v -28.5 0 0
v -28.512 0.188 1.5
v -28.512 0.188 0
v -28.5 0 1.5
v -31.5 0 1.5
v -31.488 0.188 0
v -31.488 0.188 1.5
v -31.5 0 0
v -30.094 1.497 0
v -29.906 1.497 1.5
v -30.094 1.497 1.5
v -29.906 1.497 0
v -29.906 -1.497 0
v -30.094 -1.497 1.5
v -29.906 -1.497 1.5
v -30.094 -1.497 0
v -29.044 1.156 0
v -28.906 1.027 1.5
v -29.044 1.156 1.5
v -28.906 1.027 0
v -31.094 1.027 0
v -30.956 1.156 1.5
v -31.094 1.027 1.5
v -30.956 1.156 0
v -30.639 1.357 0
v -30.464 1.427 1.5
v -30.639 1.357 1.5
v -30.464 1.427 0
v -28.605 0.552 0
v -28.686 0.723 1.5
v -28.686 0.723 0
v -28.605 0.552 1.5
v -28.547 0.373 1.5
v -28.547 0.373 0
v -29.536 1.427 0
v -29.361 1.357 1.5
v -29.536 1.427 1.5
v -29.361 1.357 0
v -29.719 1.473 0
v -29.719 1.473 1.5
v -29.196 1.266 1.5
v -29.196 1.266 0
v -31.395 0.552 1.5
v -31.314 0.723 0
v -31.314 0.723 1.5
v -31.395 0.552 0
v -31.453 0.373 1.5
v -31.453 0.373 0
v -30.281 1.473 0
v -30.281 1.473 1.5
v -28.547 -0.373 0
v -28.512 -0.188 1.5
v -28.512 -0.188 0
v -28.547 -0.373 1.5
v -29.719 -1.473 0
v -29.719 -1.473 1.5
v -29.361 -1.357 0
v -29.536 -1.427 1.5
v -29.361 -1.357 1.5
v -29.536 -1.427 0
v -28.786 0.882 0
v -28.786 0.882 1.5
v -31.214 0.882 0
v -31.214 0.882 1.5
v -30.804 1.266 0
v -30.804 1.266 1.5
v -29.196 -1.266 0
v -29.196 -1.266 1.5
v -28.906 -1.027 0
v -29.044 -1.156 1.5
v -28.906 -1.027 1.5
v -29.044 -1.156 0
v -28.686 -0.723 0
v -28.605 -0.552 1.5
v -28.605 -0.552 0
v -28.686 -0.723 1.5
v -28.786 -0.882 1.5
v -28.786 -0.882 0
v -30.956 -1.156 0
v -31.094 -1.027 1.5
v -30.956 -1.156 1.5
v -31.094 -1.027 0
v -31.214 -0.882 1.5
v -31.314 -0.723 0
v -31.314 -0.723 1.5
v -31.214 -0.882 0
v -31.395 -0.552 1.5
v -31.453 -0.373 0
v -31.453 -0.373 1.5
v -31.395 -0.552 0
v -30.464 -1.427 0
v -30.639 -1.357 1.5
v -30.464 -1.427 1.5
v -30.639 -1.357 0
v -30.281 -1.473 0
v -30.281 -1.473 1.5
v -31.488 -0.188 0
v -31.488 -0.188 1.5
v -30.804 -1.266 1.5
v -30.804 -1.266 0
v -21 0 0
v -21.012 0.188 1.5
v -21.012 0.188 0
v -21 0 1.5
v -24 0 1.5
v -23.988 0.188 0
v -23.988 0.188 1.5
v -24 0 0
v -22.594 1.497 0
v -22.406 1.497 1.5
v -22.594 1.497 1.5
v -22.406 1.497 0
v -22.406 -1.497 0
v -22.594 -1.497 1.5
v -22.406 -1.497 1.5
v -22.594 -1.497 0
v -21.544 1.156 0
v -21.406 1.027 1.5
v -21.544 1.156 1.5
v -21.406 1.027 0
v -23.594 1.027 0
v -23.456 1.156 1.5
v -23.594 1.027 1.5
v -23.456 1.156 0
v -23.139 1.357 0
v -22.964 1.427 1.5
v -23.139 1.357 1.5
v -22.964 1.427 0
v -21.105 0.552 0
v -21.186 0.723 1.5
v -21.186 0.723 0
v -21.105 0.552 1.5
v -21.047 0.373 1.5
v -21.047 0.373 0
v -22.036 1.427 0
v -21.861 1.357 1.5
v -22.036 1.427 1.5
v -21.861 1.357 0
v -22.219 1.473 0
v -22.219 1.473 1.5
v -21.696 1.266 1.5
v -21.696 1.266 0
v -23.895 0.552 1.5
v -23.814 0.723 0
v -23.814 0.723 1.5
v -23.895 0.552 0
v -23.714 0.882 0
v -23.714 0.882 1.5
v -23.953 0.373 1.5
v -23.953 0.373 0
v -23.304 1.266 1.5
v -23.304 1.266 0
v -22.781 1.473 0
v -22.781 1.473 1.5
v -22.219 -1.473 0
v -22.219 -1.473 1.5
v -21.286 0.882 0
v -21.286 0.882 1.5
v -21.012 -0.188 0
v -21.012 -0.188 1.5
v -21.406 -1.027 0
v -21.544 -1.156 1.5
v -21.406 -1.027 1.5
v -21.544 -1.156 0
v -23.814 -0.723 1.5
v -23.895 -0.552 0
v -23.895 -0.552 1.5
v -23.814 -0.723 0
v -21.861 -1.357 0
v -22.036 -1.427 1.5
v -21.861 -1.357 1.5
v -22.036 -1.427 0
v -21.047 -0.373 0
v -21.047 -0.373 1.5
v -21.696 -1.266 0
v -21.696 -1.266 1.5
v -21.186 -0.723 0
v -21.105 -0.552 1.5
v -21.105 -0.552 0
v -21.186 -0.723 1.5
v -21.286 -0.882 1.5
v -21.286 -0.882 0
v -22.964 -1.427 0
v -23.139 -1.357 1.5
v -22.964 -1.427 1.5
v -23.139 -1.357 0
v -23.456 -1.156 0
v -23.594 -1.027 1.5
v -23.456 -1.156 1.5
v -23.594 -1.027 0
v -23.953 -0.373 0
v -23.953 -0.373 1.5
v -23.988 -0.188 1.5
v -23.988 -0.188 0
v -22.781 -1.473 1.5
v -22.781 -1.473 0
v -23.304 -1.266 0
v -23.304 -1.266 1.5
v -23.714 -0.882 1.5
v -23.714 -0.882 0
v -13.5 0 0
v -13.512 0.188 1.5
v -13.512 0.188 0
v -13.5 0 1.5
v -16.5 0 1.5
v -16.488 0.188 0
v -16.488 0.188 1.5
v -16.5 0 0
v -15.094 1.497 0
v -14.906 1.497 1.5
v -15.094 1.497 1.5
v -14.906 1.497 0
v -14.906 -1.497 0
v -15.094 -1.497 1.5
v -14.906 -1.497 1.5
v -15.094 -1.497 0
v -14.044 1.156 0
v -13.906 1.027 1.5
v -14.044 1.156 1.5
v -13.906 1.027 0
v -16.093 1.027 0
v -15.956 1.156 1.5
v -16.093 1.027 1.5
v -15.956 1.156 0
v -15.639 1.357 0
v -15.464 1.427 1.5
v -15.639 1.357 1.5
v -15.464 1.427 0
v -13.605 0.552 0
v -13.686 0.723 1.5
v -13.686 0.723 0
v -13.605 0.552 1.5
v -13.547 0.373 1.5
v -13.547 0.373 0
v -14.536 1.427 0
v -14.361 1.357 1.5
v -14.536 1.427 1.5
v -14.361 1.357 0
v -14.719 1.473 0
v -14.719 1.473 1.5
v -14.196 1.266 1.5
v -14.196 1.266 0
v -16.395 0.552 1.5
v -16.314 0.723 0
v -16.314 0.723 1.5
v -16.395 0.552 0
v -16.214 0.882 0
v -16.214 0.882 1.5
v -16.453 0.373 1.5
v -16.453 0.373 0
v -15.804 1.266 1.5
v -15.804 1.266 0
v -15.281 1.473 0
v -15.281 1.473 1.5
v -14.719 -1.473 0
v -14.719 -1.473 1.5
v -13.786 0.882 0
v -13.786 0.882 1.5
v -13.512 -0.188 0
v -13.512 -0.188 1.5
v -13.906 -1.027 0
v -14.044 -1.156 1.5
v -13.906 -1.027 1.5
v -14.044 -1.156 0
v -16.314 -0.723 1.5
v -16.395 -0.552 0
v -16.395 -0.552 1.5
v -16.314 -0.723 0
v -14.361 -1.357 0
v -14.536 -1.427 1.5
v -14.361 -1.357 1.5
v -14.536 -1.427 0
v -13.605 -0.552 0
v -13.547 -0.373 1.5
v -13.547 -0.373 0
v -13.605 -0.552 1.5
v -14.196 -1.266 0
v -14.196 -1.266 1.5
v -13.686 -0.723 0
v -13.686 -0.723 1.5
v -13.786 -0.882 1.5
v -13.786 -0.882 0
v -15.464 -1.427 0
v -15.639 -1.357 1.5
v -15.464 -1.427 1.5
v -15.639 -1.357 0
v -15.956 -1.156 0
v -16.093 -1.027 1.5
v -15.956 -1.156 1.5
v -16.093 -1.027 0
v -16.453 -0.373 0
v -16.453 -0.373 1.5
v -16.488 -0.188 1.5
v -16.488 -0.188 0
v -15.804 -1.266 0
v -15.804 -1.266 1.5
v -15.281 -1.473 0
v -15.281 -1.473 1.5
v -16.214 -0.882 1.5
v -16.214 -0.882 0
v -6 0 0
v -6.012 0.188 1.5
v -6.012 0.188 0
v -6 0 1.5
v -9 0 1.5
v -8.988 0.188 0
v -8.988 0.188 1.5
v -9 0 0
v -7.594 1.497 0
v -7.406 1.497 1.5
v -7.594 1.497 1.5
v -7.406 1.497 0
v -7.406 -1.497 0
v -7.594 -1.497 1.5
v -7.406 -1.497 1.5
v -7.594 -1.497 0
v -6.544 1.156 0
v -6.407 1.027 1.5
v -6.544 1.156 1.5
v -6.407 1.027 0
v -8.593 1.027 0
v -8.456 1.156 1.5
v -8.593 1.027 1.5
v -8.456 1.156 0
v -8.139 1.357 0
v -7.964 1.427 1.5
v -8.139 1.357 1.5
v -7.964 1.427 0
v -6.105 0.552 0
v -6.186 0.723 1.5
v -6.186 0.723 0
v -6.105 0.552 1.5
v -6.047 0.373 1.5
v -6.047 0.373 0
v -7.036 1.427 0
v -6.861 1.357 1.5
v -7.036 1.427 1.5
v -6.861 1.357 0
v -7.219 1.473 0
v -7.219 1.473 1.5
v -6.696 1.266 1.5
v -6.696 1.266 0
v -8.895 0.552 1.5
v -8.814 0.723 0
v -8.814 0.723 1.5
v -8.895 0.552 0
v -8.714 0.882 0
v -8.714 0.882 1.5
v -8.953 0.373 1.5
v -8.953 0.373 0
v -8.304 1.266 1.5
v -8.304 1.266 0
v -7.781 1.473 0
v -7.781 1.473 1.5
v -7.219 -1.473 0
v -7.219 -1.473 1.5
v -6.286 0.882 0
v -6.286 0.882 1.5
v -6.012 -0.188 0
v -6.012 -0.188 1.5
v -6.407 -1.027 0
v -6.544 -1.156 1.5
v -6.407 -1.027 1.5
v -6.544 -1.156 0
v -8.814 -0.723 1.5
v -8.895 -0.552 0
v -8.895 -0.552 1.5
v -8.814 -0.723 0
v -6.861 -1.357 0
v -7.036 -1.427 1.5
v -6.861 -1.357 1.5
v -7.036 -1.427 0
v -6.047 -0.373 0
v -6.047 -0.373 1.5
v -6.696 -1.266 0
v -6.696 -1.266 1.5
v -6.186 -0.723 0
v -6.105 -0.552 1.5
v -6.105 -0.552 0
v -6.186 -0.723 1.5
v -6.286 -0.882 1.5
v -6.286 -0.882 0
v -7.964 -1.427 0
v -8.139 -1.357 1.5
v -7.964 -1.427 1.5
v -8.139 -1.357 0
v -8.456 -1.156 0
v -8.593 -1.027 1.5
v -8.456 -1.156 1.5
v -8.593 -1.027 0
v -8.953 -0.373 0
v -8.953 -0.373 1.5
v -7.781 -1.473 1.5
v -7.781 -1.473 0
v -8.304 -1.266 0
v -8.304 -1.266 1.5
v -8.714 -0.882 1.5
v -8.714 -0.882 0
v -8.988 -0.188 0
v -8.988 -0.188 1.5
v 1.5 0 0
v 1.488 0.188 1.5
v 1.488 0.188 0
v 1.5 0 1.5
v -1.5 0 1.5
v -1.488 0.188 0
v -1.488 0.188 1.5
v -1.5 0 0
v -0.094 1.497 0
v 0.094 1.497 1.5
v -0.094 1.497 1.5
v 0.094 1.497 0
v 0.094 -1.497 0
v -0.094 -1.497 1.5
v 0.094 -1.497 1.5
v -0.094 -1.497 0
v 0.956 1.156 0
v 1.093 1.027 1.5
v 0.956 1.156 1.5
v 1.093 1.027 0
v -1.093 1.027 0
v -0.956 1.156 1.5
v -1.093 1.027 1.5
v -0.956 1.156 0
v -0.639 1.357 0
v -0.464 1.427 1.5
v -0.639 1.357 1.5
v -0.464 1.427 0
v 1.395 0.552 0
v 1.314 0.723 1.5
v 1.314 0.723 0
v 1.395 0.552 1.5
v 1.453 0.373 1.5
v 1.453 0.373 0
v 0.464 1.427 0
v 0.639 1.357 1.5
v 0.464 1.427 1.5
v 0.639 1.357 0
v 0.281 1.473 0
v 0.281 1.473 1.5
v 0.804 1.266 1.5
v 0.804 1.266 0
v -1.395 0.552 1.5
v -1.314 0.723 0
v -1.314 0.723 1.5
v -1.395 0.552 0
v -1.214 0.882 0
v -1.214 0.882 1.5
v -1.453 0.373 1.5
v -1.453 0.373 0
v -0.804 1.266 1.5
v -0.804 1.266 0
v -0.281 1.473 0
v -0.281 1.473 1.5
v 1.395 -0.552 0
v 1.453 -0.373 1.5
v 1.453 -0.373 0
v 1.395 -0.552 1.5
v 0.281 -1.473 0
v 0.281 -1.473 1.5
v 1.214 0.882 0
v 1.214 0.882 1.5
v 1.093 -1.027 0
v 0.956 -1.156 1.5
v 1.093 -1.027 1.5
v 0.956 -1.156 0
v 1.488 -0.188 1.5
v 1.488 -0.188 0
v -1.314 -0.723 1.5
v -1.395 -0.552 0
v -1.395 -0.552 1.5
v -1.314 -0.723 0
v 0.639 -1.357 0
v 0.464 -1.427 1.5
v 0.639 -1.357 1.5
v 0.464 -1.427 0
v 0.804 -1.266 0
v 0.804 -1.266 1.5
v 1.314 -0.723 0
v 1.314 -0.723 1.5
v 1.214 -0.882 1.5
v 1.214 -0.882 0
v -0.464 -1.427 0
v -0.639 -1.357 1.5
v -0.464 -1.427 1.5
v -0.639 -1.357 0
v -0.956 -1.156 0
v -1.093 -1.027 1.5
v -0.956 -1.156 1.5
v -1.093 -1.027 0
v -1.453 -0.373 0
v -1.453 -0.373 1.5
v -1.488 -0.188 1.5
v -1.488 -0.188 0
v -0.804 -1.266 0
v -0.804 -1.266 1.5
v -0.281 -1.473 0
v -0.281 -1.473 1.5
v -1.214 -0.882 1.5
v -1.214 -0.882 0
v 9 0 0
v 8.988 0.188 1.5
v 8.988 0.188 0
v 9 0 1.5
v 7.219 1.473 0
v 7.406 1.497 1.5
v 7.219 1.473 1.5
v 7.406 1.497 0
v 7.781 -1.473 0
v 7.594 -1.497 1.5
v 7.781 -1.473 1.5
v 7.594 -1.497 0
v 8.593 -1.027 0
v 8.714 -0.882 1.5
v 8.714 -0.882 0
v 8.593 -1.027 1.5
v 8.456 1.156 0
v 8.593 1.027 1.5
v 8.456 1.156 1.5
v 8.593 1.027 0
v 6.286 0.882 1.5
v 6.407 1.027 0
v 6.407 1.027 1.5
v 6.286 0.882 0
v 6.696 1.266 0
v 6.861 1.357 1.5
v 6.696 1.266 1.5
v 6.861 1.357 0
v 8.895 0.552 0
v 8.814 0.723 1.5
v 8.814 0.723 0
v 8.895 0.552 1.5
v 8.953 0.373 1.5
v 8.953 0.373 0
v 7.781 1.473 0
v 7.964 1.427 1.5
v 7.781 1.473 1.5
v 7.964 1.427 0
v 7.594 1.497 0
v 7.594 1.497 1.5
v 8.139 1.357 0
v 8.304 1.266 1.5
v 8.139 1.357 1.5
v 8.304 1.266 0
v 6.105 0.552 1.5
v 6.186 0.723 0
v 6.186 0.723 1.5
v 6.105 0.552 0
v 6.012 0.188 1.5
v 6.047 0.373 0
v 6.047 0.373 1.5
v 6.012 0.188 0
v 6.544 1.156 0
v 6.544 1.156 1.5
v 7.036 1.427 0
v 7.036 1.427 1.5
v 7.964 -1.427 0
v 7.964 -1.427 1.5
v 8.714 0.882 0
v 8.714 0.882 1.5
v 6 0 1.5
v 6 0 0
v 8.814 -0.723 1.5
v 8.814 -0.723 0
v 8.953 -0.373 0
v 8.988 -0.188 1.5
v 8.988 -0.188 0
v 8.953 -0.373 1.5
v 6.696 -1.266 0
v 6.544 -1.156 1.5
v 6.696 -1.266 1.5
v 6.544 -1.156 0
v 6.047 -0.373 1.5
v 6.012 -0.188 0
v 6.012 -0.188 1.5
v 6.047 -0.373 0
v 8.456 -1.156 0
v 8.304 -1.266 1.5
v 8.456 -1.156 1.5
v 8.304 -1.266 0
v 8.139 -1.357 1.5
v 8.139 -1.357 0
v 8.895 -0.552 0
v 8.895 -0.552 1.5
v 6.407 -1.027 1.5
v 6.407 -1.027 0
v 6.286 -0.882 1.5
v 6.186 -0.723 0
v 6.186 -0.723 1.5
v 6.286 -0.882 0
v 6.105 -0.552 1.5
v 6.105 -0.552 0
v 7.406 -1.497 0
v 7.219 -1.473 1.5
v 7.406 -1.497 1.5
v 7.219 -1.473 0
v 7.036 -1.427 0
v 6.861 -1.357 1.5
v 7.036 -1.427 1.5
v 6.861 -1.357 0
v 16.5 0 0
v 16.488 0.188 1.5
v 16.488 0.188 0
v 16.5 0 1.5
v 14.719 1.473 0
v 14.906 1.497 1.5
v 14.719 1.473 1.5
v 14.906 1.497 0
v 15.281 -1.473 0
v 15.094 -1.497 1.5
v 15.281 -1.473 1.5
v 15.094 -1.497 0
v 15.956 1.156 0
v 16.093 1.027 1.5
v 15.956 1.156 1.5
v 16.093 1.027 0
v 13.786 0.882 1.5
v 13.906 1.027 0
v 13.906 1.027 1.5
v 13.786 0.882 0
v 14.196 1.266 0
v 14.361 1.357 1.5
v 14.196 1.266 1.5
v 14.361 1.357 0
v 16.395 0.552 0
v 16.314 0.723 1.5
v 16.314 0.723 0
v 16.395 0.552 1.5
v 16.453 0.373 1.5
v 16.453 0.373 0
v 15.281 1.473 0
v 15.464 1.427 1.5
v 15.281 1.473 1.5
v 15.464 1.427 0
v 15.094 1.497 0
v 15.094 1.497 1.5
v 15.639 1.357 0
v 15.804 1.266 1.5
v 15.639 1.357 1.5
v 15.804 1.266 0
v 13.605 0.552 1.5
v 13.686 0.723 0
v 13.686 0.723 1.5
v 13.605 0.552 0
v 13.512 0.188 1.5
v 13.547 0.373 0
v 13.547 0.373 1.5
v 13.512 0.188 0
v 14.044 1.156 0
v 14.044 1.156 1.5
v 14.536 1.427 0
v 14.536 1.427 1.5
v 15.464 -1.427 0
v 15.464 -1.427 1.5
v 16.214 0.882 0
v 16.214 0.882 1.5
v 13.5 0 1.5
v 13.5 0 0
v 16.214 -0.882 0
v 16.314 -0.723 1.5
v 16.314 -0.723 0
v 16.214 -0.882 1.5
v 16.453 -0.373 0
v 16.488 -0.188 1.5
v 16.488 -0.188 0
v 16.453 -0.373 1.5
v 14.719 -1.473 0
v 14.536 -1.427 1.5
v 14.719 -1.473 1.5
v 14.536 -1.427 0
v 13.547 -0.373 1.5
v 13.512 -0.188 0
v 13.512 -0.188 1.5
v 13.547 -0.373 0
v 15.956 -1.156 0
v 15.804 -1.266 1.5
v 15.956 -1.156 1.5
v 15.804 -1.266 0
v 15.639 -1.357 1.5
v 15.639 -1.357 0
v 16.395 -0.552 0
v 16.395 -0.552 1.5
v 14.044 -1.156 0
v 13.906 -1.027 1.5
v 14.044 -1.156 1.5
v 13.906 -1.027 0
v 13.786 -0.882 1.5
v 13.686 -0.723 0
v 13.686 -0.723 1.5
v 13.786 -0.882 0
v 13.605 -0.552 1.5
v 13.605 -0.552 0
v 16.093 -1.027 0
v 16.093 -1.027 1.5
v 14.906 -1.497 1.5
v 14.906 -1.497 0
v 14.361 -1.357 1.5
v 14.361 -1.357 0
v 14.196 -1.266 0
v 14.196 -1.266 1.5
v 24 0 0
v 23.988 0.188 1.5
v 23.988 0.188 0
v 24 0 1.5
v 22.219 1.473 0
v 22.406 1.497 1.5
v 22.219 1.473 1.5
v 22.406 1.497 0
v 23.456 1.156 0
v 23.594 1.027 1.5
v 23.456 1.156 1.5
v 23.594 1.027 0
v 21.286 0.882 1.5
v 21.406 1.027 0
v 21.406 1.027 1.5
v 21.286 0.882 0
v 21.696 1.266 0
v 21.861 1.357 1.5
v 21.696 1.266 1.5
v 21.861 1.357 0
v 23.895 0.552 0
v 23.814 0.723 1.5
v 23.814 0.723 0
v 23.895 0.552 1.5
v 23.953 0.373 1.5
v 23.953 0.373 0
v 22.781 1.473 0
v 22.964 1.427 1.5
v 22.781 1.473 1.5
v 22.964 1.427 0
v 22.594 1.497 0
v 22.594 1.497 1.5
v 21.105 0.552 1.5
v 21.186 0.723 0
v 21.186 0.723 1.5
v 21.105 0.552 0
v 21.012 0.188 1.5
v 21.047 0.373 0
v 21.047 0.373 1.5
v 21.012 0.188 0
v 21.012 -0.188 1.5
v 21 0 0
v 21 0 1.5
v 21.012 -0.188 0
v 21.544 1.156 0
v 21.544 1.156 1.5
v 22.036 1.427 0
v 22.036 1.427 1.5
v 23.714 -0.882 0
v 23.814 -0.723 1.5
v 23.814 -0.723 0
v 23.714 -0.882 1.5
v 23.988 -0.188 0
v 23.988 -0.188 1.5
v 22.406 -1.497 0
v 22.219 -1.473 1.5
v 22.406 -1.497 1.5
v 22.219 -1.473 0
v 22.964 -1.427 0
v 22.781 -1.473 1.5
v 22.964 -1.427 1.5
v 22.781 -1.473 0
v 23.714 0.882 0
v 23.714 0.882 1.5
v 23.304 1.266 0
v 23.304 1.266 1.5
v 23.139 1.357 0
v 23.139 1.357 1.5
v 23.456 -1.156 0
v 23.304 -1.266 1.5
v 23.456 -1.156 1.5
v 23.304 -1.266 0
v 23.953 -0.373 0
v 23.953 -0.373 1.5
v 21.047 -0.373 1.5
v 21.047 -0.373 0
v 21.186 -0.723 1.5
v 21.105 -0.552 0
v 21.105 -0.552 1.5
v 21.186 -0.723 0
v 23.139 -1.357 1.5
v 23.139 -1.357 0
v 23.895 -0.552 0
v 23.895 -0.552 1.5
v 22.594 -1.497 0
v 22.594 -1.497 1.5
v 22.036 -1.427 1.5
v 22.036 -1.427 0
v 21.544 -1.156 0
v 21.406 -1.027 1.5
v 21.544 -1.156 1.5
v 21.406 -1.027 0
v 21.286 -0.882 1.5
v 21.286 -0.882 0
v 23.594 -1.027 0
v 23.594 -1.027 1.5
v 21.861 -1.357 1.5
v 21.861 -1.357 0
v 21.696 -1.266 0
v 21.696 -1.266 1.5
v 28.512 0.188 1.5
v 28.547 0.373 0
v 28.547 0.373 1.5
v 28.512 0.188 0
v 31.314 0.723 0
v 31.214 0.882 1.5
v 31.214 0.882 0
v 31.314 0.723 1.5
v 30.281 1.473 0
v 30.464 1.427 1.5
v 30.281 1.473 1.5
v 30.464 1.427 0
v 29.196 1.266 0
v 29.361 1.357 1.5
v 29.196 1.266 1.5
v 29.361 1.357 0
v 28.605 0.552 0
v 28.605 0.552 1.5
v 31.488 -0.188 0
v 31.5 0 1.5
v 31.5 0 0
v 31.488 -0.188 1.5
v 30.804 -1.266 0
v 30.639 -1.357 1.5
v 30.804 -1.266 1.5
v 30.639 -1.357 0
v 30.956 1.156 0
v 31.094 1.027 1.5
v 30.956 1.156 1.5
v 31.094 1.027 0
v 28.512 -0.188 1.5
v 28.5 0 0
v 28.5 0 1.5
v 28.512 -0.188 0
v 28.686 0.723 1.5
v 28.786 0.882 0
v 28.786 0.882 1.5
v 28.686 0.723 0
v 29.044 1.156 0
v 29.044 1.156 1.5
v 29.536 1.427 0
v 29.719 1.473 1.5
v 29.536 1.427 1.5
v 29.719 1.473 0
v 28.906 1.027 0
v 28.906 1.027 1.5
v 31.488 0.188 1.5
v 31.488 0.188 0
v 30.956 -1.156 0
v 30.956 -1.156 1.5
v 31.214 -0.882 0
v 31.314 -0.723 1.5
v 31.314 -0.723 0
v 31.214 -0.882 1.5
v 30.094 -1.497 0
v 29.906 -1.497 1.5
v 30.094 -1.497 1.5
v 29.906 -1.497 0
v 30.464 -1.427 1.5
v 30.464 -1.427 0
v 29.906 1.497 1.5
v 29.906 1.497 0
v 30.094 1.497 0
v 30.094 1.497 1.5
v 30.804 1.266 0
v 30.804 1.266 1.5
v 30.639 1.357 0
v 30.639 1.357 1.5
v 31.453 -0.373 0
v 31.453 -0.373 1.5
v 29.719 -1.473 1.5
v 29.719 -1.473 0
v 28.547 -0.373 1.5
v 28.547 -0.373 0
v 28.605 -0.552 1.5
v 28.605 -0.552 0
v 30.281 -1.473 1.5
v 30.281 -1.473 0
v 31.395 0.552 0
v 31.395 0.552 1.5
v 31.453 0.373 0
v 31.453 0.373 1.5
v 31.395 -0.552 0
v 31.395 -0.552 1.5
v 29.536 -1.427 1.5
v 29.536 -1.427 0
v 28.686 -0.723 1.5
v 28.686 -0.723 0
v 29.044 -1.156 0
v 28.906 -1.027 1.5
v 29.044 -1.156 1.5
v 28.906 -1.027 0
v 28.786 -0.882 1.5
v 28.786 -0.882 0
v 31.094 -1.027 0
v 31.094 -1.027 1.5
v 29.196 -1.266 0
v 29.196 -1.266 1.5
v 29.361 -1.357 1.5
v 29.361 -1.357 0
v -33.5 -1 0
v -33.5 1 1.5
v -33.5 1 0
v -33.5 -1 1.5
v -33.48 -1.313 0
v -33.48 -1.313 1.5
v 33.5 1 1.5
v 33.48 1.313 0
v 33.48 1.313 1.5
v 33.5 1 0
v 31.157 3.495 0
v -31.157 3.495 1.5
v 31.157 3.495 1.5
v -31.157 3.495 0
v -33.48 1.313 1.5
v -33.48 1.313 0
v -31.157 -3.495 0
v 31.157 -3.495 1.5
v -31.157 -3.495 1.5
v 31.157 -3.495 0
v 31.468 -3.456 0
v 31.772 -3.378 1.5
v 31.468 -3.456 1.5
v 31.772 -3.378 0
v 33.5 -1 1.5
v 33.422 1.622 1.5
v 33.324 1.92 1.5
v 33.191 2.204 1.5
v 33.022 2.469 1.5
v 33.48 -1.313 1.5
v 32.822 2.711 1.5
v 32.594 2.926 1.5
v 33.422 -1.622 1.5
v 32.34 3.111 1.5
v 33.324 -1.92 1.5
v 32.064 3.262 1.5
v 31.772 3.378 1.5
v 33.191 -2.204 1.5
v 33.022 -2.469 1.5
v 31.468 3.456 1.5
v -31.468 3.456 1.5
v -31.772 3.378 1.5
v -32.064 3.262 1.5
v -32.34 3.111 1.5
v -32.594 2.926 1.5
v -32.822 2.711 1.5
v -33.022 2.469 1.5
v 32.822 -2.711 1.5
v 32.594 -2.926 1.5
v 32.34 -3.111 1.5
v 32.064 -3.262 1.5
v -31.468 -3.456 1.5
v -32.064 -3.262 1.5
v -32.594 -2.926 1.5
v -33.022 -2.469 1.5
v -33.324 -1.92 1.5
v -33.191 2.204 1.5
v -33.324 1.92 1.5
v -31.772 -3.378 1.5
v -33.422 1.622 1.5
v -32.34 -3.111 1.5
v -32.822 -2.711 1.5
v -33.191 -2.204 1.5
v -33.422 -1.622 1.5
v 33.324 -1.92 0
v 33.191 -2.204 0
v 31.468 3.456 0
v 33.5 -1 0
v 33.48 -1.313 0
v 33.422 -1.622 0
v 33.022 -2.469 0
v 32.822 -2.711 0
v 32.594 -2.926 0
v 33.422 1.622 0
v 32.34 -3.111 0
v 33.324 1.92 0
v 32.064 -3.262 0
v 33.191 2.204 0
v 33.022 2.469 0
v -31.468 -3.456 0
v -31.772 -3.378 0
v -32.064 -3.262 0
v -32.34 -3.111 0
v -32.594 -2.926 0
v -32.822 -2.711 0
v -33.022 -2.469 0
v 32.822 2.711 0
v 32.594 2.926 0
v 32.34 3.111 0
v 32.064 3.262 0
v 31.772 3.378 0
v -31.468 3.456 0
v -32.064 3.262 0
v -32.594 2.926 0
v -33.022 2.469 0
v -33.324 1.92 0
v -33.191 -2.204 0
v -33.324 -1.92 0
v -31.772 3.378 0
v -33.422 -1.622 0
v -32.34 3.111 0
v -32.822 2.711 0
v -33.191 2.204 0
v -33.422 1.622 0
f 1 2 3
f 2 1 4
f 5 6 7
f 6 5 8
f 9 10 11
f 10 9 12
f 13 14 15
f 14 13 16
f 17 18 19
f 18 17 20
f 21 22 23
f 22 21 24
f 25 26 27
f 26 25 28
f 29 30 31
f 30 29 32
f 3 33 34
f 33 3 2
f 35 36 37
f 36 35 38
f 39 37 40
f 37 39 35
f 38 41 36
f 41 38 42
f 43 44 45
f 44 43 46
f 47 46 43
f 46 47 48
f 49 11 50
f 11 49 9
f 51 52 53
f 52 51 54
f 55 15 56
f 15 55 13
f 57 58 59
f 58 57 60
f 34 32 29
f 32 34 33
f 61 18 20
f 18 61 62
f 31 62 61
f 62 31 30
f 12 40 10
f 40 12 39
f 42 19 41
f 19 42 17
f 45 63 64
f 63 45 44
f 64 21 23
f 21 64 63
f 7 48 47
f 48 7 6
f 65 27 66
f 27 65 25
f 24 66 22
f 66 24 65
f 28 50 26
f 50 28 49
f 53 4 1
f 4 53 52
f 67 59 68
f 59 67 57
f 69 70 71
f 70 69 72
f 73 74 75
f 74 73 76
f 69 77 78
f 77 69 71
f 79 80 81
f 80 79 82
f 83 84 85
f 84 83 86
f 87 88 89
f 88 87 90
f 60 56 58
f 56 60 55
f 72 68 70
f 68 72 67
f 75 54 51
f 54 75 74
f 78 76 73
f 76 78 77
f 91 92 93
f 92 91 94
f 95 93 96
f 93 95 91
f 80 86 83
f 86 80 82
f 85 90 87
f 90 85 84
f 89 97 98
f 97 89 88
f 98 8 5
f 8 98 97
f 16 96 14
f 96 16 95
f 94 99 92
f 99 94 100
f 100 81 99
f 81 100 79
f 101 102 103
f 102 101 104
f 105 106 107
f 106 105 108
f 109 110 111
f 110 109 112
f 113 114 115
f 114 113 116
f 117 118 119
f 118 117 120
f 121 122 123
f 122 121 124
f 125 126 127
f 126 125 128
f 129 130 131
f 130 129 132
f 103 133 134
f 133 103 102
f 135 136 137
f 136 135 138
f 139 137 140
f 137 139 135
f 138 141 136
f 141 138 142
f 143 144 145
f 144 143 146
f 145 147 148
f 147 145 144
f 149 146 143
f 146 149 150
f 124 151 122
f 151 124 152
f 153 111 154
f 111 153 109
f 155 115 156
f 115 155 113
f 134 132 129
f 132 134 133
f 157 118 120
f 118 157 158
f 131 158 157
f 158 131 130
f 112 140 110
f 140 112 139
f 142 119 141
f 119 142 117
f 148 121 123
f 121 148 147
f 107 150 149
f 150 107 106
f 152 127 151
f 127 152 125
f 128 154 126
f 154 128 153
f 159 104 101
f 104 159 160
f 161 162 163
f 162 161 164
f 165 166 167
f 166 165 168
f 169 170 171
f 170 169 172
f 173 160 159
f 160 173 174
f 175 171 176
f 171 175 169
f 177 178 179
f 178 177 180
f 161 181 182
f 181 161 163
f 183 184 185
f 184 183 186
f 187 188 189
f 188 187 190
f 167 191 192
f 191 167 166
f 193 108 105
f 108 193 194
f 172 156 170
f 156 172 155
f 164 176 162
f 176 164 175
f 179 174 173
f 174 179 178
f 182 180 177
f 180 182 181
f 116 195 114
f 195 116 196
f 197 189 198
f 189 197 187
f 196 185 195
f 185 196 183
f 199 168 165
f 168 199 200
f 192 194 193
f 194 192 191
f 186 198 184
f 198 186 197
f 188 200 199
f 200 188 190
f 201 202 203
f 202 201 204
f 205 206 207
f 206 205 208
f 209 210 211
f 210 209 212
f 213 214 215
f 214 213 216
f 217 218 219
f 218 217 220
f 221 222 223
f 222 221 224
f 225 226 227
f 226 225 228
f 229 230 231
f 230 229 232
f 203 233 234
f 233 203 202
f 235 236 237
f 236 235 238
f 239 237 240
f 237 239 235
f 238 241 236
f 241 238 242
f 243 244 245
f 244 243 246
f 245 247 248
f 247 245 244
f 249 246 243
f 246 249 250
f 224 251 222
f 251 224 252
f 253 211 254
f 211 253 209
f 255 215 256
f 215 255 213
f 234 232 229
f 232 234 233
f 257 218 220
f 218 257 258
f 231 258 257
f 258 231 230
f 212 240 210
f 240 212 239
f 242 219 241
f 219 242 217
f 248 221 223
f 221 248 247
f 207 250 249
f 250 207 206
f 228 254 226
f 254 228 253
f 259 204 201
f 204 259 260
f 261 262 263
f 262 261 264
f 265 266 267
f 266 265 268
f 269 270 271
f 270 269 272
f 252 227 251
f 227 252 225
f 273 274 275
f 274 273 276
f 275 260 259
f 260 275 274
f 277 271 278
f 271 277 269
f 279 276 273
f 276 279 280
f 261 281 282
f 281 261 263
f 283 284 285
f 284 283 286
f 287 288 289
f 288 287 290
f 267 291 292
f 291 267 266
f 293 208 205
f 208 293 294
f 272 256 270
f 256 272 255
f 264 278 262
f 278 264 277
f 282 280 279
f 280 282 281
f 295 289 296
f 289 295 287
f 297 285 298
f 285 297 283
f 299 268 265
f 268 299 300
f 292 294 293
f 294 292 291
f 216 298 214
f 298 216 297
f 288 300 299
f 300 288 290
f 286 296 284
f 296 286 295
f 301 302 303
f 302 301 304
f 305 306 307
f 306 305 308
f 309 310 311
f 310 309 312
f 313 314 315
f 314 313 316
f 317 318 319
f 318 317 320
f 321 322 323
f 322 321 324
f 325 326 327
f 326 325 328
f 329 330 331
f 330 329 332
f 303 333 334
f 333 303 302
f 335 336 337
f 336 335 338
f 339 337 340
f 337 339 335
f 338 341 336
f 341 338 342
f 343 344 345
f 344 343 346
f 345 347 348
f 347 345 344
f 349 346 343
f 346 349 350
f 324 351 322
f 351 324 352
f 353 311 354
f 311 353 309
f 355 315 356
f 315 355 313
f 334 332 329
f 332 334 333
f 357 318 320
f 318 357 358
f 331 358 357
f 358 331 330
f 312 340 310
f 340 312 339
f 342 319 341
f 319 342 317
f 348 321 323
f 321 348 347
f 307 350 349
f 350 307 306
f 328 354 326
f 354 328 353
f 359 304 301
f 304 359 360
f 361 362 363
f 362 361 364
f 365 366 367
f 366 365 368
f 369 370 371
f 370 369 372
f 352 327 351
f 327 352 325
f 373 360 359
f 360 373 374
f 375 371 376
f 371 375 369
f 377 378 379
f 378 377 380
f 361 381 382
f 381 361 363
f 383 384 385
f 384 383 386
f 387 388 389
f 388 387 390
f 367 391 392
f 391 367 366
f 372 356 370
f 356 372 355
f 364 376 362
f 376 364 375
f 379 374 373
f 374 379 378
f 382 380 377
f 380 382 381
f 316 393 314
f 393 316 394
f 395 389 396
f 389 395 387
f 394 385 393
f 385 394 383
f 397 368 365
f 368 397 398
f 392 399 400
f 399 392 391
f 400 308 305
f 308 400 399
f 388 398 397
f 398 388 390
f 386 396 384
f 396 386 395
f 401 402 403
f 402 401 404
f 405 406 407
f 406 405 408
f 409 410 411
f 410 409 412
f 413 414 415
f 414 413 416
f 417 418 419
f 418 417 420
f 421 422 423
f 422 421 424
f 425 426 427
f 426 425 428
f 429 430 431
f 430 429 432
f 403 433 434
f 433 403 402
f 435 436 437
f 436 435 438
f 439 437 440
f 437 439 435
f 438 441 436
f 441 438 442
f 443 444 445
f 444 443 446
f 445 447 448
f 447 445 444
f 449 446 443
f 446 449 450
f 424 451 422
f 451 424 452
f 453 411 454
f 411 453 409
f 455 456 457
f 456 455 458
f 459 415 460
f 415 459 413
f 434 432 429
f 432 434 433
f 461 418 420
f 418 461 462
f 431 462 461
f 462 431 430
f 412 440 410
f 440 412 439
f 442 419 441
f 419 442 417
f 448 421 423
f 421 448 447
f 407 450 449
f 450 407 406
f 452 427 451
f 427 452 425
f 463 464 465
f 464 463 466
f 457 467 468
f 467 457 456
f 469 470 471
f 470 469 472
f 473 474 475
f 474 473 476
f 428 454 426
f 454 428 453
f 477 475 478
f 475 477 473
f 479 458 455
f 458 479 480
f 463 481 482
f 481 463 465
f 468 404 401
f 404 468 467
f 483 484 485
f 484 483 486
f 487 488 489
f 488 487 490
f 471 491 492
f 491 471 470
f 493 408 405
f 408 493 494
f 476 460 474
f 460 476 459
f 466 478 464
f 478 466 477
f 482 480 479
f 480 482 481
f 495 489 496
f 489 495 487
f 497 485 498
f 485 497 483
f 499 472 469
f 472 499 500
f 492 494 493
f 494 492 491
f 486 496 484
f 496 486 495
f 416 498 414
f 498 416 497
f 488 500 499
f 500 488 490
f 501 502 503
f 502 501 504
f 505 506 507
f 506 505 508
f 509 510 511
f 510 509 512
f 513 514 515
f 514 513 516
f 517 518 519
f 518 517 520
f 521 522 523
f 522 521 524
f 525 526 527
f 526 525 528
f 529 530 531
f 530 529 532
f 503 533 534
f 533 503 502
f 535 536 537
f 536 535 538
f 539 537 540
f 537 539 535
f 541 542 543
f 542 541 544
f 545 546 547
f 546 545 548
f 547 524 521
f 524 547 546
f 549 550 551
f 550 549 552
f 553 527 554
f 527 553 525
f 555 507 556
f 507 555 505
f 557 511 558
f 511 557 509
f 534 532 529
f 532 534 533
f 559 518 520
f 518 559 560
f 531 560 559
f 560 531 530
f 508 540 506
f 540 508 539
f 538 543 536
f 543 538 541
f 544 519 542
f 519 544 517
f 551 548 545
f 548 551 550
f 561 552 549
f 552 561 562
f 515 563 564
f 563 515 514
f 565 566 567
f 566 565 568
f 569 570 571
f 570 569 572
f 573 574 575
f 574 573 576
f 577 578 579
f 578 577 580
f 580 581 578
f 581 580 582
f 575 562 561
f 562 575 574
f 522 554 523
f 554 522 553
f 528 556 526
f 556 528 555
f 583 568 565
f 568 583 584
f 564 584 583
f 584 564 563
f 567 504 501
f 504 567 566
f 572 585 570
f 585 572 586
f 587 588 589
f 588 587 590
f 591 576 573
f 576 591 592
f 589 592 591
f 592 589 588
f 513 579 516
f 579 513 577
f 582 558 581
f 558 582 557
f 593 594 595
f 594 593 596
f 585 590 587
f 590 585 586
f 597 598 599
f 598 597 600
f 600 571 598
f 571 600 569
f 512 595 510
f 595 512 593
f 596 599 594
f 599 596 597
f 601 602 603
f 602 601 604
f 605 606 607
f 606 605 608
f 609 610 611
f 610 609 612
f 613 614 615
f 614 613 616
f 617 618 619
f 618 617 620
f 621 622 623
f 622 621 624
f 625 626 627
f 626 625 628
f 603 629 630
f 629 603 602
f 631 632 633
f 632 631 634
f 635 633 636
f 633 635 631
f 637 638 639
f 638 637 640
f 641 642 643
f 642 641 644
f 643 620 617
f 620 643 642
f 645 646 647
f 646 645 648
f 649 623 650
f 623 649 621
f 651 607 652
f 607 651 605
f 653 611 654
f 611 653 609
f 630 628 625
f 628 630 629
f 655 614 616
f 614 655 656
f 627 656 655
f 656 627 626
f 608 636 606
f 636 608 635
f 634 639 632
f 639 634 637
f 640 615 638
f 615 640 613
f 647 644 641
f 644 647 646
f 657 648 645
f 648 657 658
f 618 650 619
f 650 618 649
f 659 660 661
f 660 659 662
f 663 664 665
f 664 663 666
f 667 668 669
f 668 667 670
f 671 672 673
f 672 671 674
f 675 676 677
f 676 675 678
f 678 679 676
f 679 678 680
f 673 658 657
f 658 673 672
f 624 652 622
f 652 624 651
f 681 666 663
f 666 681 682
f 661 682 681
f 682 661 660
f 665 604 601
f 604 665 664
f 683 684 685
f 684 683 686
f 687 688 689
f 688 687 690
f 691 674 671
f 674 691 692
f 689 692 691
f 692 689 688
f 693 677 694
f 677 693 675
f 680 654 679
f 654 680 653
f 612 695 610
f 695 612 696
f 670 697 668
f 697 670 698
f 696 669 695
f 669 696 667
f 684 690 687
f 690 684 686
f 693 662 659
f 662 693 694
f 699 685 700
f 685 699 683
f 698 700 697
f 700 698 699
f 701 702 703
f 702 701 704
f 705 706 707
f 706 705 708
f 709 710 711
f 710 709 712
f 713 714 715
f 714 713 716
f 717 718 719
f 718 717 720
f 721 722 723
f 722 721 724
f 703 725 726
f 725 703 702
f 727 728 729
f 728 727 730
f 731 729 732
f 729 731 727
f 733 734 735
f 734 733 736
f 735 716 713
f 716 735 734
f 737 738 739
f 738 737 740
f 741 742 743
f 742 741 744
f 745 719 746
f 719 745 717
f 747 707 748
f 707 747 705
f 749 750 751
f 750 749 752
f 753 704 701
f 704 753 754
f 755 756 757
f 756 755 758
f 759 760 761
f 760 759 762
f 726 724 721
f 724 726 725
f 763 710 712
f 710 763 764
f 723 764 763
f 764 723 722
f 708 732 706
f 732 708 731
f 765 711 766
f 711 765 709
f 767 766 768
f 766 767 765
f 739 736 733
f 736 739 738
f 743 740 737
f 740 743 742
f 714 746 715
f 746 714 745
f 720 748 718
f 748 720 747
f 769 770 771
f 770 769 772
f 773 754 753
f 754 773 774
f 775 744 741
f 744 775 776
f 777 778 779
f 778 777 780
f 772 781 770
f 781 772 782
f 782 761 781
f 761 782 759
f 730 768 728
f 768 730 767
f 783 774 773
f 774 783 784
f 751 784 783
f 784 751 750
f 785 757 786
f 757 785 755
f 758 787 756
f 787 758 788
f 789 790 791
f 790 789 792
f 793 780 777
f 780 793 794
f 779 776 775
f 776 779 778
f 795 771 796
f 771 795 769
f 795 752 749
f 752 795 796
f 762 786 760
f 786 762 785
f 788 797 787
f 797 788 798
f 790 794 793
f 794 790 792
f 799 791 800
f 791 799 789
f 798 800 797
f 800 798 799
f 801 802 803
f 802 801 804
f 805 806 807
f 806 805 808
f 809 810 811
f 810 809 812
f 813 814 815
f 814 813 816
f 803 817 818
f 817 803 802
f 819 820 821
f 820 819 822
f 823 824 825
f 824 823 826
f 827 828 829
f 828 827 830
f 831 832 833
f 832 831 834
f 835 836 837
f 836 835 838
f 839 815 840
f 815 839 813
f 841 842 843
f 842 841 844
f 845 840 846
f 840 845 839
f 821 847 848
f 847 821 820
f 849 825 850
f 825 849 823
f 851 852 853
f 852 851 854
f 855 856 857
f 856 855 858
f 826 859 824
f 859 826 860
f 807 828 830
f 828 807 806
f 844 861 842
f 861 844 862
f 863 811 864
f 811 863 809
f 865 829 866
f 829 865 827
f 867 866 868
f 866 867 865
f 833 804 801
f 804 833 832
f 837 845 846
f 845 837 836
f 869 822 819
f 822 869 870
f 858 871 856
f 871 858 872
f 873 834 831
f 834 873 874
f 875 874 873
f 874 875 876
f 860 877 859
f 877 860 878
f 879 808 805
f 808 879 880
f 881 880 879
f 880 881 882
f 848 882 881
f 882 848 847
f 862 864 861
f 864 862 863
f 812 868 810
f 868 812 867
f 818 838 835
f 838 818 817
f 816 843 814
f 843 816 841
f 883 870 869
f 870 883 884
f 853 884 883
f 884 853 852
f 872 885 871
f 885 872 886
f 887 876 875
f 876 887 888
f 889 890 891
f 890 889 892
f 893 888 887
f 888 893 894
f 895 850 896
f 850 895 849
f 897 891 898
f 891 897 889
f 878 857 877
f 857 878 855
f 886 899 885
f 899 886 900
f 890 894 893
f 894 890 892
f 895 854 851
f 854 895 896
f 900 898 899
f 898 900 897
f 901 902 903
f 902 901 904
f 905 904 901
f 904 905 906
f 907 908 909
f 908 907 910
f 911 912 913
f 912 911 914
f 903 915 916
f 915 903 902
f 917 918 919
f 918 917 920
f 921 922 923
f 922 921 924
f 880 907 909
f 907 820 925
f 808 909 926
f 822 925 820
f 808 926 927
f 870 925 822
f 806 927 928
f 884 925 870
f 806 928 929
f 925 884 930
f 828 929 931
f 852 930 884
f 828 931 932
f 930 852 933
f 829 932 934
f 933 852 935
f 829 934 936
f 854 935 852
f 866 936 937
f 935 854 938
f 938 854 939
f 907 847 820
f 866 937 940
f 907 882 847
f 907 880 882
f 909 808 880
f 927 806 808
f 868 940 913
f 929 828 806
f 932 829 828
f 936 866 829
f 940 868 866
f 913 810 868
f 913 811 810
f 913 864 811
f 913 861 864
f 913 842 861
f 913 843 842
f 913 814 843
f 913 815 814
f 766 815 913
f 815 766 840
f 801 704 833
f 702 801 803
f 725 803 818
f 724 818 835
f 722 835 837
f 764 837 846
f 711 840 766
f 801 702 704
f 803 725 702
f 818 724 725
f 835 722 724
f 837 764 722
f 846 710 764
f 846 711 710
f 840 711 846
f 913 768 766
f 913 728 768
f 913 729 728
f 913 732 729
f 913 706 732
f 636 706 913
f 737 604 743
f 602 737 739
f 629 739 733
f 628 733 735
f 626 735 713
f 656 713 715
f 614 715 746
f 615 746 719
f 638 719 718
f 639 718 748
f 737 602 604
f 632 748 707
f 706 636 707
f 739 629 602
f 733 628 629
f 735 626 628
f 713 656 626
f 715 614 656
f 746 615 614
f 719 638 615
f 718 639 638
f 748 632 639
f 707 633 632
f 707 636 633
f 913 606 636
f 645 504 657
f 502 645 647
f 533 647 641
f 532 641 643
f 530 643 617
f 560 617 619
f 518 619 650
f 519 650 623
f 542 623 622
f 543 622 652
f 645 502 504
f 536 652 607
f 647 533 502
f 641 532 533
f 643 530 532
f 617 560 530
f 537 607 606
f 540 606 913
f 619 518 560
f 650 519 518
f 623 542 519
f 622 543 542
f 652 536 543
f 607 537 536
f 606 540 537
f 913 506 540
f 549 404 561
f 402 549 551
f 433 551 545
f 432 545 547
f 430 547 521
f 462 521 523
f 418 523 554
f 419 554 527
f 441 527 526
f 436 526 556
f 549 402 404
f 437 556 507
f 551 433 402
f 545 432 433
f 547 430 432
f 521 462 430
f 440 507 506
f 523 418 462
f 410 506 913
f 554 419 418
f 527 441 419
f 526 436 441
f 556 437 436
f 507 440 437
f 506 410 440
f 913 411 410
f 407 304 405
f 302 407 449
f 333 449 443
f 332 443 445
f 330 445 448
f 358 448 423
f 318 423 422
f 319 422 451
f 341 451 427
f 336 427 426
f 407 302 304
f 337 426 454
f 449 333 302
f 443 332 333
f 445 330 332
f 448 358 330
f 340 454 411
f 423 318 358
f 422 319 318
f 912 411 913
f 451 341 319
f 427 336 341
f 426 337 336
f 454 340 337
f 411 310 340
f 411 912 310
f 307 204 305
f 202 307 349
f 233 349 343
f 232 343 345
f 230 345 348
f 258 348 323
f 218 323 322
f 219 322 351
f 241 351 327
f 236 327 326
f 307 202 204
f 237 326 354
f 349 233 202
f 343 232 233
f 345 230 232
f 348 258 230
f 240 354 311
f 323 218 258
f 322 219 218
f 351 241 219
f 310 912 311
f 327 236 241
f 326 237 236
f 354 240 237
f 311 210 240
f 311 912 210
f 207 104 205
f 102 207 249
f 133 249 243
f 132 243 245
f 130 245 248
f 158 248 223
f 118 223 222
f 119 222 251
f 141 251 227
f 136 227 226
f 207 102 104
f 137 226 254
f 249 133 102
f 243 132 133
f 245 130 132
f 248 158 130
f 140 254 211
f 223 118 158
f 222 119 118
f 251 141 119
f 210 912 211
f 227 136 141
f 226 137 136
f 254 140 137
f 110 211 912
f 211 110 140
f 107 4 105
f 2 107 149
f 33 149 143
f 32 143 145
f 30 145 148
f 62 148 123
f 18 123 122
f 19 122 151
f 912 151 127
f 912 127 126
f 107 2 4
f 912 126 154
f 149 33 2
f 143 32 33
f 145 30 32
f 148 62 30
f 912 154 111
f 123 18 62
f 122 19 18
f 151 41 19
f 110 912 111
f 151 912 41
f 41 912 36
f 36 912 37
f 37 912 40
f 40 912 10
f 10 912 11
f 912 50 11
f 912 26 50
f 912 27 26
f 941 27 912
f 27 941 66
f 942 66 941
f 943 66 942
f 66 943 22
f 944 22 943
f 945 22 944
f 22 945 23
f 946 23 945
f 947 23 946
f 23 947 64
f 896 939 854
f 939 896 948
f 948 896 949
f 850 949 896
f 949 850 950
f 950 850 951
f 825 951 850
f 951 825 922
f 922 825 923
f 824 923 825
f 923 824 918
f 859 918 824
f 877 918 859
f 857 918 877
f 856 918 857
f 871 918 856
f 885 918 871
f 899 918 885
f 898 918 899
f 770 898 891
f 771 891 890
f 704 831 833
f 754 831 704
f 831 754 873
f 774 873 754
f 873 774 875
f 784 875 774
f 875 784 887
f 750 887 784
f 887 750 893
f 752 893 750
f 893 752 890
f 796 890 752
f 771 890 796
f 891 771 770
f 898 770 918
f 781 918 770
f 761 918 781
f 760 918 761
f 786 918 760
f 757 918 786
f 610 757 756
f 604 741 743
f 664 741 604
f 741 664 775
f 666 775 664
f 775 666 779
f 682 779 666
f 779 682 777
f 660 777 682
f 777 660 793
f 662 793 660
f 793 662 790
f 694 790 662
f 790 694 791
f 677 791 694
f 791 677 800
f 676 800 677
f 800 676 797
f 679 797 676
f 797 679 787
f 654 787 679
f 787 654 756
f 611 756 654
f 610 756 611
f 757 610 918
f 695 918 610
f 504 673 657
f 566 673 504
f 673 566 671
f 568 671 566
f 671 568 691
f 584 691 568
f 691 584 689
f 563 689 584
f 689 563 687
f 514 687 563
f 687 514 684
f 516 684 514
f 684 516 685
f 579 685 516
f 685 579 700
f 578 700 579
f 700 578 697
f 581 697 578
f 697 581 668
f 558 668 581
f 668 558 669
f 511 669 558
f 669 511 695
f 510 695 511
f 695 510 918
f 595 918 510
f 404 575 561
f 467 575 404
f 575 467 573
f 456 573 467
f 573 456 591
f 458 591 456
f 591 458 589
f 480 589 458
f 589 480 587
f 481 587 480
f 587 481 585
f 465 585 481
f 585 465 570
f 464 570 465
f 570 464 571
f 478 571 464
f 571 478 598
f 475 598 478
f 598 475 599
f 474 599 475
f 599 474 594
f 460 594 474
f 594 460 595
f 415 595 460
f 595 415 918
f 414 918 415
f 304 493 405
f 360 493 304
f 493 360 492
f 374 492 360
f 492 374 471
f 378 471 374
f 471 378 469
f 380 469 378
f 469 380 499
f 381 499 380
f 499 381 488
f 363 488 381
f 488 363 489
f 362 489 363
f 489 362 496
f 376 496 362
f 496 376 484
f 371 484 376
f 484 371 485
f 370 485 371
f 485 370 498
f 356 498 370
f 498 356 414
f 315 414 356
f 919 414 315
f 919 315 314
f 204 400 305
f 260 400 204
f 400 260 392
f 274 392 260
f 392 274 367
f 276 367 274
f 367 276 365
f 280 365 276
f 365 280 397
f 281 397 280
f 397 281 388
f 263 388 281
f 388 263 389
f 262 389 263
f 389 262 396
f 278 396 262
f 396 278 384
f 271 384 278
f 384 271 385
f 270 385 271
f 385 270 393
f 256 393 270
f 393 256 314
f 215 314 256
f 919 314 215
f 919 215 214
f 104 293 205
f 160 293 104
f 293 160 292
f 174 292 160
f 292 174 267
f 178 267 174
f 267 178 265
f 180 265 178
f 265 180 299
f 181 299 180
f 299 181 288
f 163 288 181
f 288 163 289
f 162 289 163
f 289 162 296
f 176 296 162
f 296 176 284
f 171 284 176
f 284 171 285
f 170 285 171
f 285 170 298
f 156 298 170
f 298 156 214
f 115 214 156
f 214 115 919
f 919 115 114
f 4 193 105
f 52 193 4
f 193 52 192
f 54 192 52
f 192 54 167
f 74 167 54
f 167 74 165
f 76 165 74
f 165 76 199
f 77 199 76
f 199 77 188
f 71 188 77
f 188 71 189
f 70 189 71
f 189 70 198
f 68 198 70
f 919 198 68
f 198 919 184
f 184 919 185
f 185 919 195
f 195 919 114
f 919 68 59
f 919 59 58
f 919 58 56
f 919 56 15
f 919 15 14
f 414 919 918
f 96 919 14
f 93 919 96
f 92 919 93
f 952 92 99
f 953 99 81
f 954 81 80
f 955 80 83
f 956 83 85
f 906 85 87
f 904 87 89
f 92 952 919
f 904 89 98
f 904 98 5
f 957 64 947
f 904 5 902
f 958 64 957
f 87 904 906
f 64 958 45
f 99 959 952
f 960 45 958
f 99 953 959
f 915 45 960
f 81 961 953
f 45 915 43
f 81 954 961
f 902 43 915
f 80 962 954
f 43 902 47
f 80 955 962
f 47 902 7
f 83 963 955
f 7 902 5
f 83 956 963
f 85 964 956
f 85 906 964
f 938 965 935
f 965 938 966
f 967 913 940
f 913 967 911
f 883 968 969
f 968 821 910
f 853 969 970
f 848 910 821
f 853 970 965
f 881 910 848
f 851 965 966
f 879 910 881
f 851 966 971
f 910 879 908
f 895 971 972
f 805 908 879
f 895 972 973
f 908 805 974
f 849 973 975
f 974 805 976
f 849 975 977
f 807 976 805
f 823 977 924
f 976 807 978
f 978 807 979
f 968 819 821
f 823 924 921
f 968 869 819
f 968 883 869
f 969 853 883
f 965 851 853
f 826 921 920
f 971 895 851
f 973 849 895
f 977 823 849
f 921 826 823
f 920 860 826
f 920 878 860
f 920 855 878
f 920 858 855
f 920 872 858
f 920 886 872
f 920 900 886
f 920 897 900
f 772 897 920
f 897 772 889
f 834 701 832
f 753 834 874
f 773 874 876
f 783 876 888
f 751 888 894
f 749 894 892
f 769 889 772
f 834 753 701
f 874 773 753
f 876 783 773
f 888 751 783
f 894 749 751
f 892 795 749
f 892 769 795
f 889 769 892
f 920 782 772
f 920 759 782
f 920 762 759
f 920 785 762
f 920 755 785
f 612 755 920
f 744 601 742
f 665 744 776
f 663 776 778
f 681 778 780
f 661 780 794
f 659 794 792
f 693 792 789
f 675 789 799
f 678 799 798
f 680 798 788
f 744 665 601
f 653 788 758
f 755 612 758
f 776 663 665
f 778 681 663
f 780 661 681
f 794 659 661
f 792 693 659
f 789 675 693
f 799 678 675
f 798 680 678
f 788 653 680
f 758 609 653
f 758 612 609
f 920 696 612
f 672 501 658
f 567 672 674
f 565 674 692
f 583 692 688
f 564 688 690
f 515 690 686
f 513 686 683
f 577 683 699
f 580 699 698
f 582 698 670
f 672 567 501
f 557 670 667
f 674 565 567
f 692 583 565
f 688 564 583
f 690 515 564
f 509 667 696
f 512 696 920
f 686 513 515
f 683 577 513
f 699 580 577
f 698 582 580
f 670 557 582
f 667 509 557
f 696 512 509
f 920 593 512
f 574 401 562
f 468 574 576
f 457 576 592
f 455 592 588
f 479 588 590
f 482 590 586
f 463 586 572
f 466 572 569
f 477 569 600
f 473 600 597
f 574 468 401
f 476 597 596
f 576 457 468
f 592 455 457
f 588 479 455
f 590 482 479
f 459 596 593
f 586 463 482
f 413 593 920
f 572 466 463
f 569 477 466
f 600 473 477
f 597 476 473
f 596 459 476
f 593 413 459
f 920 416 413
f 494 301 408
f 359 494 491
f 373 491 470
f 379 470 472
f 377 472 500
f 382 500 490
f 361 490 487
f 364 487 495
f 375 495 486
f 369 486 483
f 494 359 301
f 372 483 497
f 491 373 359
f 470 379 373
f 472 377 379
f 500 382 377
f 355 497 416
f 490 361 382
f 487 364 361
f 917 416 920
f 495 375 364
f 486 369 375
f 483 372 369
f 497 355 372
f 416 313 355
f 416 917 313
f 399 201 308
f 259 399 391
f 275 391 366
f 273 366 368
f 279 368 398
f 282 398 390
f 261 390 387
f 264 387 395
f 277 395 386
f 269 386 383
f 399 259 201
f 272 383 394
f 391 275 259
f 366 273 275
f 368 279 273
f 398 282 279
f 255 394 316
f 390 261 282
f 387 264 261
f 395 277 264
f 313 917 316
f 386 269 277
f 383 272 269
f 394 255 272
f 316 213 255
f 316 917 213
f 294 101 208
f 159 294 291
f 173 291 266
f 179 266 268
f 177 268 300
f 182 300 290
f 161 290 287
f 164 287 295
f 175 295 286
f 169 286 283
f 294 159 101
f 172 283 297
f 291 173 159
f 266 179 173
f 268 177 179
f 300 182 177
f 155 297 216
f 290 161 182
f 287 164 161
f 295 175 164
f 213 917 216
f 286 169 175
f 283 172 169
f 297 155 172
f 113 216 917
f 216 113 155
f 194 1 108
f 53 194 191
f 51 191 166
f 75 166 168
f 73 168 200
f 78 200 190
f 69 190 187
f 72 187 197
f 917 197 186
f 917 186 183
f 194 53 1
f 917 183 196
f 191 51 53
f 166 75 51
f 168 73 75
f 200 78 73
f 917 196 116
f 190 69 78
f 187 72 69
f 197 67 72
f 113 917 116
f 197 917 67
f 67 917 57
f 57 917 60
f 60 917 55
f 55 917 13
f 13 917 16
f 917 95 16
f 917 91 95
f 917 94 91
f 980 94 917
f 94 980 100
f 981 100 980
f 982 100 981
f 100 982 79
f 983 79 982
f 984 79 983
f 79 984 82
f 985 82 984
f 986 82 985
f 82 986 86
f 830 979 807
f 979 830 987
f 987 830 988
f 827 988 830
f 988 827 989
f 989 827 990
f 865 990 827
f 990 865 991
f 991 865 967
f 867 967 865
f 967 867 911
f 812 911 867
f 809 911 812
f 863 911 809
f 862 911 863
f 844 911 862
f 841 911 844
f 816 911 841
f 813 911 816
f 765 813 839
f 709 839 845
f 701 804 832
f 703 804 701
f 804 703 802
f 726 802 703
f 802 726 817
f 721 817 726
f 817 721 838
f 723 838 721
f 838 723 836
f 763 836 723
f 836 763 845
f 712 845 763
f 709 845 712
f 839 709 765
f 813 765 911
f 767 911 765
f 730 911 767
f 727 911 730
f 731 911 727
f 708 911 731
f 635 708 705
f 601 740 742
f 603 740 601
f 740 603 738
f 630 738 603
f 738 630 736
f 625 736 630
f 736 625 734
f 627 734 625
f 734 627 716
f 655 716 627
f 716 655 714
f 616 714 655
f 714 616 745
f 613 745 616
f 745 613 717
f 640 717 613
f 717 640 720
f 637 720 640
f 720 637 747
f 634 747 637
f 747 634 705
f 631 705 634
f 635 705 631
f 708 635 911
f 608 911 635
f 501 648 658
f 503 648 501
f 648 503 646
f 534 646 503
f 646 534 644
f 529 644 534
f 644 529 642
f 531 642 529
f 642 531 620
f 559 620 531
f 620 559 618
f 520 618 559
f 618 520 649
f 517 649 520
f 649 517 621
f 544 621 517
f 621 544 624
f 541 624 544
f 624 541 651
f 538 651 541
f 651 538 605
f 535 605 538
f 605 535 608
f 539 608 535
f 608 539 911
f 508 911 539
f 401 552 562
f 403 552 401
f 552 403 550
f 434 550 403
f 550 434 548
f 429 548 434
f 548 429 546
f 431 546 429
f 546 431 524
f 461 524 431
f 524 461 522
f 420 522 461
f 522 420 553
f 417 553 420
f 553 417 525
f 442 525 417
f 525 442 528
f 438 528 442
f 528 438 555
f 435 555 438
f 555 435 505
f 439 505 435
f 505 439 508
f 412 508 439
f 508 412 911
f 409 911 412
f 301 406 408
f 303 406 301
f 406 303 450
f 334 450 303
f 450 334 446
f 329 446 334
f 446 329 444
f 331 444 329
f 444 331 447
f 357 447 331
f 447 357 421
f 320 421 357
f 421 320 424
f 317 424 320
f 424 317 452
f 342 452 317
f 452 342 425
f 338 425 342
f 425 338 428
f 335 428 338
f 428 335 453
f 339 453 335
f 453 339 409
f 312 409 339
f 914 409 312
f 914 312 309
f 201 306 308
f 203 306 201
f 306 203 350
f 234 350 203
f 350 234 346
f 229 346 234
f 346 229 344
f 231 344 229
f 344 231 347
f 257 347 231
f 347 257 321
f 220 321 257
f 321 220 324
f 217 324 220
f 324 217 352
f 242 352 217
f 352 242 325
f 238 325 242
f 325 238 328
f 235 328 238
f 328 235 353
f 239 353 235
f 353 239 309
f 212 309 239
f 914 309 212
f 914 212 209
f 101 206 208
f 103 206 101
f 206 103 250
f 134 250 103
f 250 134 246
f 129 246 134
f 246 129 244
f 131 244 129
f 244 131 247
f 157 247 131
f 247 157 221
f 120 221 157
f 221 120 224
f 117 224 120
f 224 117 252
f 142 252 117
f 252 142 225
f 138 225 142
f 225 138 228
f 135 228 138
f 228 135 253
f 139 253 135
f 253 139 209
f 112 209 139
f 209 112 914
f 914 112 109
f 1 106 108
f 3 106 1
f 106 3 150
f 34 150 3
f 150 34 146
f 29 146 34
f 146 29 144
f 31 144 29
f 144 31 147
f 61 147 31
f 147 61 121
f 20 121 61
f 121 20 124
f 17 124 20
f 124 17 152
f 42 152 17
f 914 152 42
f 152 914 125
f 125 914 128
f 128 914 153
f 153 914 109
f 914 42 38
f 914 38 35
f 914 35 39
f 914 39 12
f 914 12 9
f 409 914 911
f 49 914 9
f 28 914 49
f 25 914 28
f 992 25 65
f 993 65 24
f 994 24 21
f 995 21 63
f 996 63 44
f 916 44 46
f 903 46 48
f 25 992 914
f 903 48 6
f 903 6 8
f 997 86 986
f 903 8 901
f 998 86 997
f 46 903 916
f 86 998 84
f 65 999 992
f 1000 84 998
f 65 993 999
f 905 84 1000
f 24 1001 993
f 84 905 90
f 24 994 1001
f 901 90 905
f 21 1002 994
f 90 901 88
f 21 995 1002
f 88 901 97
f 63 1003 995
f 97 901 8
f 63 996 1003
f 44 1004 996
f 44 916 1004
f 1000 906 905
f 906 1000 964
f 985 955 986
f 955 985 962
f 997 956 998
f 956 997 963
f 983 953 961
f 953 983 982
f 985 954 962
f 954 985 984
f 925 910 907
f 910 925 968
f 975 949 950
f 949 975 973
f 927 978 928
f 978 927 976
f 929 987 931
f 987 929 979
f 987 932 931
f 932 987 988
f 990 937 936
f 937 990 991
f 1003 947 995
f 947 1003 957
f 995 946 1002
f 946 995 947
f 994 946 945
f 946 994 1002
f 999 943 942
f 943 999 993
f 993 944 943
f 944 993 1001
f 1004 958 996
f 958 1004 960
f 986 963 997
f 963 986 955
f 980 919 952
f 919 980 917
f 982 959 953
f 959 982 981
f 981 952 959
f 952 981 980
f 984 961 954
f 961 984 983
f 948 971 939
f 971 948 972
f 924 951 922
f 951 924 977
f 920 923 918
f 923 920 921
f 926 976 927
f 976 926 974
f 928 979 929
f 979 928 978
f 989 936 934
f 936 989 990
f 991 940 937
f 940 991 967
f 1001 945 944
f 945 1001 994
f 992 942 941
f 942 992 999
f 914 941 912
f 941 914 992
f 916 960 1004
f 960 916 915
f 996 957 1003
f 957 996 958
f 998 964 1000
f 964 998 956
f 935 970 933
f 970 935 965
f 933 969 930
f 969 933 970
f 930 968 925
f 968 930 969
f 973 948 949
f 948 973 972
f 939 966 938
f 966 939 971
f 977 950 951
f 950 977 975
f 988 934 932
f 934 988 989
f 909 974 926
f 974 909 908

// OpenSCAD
$fn = 50;


difference() {
	union() {
		translate(v = [0, 0, 0]) {
			rotate(a = [0, 0, 0]) {
				hull() {
					translate(v = [-31.0000000000, 1.0000000000, 0]) {
						rotate(a = [0, 0, 0]) {
							translate(v = [0, 0, 0]) {
								rotate(a = [0, 0, 0]) {
									cylinder(h = 1.5000000000, r = 2.5000000000);
								}
							}
						}
					}
					translate(v = [31.0000000000, 1.0000000000, 0]) {
						rotate(a = [0, 0, 0]) {
							translate(v = [0, 0, 0]) {
								rotate(a = [0, 0, 0]) {
									cylinder(h = 1.5000000000, r = 2.5000000000);
								}
							}
						}
					}
					translate(v = [-31.0000000000, -1.0000000000, 0]) {
						rotate(a = [0, 0, 0]) {
							translate(v = [0, 0, 0]) {
								rotate(a = [0, 0, 0]) {
									cylinder(h = 1.5000000000, r = 2.5000000000);
								}
							}
						}
					}
					translate(v = [31.0000000000, -1.0000000000, 0]) {
						rotate(a = [0, 0, 0]) {
							translate(v = [0, 0, 0]) {
								rotate(a = [0, 0, 0]) {
									cylinder(h = 1.5000000000, r = 2.5000000000);
								}
							}
						}
					}
				}
			}
		}
	}
	union() {
		translate(v = [-30.0000000000, 0.0000000000, 0]) {
			rotate(a = [0, 0, 0]) {
				translate(v = [0, 0, -50]) {
					rotate(a = [0, 0, 0]) {
						cylinder(h = 100, r = 1.5000000000);
					}
				}
			}
		}
		translate(v = [-22.5000000000, 0.0000000000, 0]) {
			rotate(a = [0, 0, 0]) {
				translate(v = [0, 0, -50]) {
					rotate(a = [0, 0, 0]) {
						cylinder(h = 100, r = 1.5000000000);
					}
				}
			}
		}
		translate(v = [-15.0000000000, 0.0000000000, 0]) {
			rotate(a = [0, 0, 0]) {
				translate(v = [0, 0, -50]) {
					rotate(a = [0, 0, 0]) {
						cylinder(h = 100, r = 1.5000000000);
					}
				}
			}
		}
		translate(v = [-7.5000000000, 0.0000000000, 0]) {
			rotate(a = [0, 0, 0]) {
				translate(v = [0, 0, -50]) {
					rotate(a = [0, 0, 0]) {
						cylinder(h = 100, r = 1.5000000000);
					}
				}
			}
		}
		translate(v = [0.0000000000, 0.0000000000, 0]) {
			rotate(a = [0, 0, 0]) {
				translate(v = [0, 0, -50]) {
					rotate(a = [0, 0, 0]) {
						cylinder(h = 100, r = 1.5000000000);
					}
				}
			}
		}
		translate(v = [7.5000000000, 0.0000000000, 0]) {
			rotate(a = [0, 0, 0]) {
				translate(v = [0, 0, -50]) {
					rotate(a = [0, 0, 0]) {
						cylinder(h = 100, r = 1.5000000000);
					}
				}
			}
		}
		translate(v = [15.0000000000, 0.0000000000, 0]) {
			rotate(a = [0, 0, 0]) {
				translate(v = [0, 0, -50]) {
					rotate(a = [0, 0, 0]) {
						cylinder(h = 100, r = 1.5000000000);
					}
				}
			}
		}
		translate(v = [22.5000000000, 0.0000000000, 0]) {
			rotate(a = [0, 0, 0]) {
				translate(v = [0, 0, -50]) {
					rotate(a = [0, 0, 0]) {
						cylinder(h = 100, r = 1.5000000000);
					}
				}
			}
		}
		translate(v = [30.0000000000, 0.0000000000, 0]) {
			rotate(a = [0, 0, 0]) {
				translate(v = [0, 0, -50]) {
					rotate(a = [0, 0, 0]) {
						cylinder(h = 100, r = 1.5000000000);
					}
				}
			}
		}
	}
}
